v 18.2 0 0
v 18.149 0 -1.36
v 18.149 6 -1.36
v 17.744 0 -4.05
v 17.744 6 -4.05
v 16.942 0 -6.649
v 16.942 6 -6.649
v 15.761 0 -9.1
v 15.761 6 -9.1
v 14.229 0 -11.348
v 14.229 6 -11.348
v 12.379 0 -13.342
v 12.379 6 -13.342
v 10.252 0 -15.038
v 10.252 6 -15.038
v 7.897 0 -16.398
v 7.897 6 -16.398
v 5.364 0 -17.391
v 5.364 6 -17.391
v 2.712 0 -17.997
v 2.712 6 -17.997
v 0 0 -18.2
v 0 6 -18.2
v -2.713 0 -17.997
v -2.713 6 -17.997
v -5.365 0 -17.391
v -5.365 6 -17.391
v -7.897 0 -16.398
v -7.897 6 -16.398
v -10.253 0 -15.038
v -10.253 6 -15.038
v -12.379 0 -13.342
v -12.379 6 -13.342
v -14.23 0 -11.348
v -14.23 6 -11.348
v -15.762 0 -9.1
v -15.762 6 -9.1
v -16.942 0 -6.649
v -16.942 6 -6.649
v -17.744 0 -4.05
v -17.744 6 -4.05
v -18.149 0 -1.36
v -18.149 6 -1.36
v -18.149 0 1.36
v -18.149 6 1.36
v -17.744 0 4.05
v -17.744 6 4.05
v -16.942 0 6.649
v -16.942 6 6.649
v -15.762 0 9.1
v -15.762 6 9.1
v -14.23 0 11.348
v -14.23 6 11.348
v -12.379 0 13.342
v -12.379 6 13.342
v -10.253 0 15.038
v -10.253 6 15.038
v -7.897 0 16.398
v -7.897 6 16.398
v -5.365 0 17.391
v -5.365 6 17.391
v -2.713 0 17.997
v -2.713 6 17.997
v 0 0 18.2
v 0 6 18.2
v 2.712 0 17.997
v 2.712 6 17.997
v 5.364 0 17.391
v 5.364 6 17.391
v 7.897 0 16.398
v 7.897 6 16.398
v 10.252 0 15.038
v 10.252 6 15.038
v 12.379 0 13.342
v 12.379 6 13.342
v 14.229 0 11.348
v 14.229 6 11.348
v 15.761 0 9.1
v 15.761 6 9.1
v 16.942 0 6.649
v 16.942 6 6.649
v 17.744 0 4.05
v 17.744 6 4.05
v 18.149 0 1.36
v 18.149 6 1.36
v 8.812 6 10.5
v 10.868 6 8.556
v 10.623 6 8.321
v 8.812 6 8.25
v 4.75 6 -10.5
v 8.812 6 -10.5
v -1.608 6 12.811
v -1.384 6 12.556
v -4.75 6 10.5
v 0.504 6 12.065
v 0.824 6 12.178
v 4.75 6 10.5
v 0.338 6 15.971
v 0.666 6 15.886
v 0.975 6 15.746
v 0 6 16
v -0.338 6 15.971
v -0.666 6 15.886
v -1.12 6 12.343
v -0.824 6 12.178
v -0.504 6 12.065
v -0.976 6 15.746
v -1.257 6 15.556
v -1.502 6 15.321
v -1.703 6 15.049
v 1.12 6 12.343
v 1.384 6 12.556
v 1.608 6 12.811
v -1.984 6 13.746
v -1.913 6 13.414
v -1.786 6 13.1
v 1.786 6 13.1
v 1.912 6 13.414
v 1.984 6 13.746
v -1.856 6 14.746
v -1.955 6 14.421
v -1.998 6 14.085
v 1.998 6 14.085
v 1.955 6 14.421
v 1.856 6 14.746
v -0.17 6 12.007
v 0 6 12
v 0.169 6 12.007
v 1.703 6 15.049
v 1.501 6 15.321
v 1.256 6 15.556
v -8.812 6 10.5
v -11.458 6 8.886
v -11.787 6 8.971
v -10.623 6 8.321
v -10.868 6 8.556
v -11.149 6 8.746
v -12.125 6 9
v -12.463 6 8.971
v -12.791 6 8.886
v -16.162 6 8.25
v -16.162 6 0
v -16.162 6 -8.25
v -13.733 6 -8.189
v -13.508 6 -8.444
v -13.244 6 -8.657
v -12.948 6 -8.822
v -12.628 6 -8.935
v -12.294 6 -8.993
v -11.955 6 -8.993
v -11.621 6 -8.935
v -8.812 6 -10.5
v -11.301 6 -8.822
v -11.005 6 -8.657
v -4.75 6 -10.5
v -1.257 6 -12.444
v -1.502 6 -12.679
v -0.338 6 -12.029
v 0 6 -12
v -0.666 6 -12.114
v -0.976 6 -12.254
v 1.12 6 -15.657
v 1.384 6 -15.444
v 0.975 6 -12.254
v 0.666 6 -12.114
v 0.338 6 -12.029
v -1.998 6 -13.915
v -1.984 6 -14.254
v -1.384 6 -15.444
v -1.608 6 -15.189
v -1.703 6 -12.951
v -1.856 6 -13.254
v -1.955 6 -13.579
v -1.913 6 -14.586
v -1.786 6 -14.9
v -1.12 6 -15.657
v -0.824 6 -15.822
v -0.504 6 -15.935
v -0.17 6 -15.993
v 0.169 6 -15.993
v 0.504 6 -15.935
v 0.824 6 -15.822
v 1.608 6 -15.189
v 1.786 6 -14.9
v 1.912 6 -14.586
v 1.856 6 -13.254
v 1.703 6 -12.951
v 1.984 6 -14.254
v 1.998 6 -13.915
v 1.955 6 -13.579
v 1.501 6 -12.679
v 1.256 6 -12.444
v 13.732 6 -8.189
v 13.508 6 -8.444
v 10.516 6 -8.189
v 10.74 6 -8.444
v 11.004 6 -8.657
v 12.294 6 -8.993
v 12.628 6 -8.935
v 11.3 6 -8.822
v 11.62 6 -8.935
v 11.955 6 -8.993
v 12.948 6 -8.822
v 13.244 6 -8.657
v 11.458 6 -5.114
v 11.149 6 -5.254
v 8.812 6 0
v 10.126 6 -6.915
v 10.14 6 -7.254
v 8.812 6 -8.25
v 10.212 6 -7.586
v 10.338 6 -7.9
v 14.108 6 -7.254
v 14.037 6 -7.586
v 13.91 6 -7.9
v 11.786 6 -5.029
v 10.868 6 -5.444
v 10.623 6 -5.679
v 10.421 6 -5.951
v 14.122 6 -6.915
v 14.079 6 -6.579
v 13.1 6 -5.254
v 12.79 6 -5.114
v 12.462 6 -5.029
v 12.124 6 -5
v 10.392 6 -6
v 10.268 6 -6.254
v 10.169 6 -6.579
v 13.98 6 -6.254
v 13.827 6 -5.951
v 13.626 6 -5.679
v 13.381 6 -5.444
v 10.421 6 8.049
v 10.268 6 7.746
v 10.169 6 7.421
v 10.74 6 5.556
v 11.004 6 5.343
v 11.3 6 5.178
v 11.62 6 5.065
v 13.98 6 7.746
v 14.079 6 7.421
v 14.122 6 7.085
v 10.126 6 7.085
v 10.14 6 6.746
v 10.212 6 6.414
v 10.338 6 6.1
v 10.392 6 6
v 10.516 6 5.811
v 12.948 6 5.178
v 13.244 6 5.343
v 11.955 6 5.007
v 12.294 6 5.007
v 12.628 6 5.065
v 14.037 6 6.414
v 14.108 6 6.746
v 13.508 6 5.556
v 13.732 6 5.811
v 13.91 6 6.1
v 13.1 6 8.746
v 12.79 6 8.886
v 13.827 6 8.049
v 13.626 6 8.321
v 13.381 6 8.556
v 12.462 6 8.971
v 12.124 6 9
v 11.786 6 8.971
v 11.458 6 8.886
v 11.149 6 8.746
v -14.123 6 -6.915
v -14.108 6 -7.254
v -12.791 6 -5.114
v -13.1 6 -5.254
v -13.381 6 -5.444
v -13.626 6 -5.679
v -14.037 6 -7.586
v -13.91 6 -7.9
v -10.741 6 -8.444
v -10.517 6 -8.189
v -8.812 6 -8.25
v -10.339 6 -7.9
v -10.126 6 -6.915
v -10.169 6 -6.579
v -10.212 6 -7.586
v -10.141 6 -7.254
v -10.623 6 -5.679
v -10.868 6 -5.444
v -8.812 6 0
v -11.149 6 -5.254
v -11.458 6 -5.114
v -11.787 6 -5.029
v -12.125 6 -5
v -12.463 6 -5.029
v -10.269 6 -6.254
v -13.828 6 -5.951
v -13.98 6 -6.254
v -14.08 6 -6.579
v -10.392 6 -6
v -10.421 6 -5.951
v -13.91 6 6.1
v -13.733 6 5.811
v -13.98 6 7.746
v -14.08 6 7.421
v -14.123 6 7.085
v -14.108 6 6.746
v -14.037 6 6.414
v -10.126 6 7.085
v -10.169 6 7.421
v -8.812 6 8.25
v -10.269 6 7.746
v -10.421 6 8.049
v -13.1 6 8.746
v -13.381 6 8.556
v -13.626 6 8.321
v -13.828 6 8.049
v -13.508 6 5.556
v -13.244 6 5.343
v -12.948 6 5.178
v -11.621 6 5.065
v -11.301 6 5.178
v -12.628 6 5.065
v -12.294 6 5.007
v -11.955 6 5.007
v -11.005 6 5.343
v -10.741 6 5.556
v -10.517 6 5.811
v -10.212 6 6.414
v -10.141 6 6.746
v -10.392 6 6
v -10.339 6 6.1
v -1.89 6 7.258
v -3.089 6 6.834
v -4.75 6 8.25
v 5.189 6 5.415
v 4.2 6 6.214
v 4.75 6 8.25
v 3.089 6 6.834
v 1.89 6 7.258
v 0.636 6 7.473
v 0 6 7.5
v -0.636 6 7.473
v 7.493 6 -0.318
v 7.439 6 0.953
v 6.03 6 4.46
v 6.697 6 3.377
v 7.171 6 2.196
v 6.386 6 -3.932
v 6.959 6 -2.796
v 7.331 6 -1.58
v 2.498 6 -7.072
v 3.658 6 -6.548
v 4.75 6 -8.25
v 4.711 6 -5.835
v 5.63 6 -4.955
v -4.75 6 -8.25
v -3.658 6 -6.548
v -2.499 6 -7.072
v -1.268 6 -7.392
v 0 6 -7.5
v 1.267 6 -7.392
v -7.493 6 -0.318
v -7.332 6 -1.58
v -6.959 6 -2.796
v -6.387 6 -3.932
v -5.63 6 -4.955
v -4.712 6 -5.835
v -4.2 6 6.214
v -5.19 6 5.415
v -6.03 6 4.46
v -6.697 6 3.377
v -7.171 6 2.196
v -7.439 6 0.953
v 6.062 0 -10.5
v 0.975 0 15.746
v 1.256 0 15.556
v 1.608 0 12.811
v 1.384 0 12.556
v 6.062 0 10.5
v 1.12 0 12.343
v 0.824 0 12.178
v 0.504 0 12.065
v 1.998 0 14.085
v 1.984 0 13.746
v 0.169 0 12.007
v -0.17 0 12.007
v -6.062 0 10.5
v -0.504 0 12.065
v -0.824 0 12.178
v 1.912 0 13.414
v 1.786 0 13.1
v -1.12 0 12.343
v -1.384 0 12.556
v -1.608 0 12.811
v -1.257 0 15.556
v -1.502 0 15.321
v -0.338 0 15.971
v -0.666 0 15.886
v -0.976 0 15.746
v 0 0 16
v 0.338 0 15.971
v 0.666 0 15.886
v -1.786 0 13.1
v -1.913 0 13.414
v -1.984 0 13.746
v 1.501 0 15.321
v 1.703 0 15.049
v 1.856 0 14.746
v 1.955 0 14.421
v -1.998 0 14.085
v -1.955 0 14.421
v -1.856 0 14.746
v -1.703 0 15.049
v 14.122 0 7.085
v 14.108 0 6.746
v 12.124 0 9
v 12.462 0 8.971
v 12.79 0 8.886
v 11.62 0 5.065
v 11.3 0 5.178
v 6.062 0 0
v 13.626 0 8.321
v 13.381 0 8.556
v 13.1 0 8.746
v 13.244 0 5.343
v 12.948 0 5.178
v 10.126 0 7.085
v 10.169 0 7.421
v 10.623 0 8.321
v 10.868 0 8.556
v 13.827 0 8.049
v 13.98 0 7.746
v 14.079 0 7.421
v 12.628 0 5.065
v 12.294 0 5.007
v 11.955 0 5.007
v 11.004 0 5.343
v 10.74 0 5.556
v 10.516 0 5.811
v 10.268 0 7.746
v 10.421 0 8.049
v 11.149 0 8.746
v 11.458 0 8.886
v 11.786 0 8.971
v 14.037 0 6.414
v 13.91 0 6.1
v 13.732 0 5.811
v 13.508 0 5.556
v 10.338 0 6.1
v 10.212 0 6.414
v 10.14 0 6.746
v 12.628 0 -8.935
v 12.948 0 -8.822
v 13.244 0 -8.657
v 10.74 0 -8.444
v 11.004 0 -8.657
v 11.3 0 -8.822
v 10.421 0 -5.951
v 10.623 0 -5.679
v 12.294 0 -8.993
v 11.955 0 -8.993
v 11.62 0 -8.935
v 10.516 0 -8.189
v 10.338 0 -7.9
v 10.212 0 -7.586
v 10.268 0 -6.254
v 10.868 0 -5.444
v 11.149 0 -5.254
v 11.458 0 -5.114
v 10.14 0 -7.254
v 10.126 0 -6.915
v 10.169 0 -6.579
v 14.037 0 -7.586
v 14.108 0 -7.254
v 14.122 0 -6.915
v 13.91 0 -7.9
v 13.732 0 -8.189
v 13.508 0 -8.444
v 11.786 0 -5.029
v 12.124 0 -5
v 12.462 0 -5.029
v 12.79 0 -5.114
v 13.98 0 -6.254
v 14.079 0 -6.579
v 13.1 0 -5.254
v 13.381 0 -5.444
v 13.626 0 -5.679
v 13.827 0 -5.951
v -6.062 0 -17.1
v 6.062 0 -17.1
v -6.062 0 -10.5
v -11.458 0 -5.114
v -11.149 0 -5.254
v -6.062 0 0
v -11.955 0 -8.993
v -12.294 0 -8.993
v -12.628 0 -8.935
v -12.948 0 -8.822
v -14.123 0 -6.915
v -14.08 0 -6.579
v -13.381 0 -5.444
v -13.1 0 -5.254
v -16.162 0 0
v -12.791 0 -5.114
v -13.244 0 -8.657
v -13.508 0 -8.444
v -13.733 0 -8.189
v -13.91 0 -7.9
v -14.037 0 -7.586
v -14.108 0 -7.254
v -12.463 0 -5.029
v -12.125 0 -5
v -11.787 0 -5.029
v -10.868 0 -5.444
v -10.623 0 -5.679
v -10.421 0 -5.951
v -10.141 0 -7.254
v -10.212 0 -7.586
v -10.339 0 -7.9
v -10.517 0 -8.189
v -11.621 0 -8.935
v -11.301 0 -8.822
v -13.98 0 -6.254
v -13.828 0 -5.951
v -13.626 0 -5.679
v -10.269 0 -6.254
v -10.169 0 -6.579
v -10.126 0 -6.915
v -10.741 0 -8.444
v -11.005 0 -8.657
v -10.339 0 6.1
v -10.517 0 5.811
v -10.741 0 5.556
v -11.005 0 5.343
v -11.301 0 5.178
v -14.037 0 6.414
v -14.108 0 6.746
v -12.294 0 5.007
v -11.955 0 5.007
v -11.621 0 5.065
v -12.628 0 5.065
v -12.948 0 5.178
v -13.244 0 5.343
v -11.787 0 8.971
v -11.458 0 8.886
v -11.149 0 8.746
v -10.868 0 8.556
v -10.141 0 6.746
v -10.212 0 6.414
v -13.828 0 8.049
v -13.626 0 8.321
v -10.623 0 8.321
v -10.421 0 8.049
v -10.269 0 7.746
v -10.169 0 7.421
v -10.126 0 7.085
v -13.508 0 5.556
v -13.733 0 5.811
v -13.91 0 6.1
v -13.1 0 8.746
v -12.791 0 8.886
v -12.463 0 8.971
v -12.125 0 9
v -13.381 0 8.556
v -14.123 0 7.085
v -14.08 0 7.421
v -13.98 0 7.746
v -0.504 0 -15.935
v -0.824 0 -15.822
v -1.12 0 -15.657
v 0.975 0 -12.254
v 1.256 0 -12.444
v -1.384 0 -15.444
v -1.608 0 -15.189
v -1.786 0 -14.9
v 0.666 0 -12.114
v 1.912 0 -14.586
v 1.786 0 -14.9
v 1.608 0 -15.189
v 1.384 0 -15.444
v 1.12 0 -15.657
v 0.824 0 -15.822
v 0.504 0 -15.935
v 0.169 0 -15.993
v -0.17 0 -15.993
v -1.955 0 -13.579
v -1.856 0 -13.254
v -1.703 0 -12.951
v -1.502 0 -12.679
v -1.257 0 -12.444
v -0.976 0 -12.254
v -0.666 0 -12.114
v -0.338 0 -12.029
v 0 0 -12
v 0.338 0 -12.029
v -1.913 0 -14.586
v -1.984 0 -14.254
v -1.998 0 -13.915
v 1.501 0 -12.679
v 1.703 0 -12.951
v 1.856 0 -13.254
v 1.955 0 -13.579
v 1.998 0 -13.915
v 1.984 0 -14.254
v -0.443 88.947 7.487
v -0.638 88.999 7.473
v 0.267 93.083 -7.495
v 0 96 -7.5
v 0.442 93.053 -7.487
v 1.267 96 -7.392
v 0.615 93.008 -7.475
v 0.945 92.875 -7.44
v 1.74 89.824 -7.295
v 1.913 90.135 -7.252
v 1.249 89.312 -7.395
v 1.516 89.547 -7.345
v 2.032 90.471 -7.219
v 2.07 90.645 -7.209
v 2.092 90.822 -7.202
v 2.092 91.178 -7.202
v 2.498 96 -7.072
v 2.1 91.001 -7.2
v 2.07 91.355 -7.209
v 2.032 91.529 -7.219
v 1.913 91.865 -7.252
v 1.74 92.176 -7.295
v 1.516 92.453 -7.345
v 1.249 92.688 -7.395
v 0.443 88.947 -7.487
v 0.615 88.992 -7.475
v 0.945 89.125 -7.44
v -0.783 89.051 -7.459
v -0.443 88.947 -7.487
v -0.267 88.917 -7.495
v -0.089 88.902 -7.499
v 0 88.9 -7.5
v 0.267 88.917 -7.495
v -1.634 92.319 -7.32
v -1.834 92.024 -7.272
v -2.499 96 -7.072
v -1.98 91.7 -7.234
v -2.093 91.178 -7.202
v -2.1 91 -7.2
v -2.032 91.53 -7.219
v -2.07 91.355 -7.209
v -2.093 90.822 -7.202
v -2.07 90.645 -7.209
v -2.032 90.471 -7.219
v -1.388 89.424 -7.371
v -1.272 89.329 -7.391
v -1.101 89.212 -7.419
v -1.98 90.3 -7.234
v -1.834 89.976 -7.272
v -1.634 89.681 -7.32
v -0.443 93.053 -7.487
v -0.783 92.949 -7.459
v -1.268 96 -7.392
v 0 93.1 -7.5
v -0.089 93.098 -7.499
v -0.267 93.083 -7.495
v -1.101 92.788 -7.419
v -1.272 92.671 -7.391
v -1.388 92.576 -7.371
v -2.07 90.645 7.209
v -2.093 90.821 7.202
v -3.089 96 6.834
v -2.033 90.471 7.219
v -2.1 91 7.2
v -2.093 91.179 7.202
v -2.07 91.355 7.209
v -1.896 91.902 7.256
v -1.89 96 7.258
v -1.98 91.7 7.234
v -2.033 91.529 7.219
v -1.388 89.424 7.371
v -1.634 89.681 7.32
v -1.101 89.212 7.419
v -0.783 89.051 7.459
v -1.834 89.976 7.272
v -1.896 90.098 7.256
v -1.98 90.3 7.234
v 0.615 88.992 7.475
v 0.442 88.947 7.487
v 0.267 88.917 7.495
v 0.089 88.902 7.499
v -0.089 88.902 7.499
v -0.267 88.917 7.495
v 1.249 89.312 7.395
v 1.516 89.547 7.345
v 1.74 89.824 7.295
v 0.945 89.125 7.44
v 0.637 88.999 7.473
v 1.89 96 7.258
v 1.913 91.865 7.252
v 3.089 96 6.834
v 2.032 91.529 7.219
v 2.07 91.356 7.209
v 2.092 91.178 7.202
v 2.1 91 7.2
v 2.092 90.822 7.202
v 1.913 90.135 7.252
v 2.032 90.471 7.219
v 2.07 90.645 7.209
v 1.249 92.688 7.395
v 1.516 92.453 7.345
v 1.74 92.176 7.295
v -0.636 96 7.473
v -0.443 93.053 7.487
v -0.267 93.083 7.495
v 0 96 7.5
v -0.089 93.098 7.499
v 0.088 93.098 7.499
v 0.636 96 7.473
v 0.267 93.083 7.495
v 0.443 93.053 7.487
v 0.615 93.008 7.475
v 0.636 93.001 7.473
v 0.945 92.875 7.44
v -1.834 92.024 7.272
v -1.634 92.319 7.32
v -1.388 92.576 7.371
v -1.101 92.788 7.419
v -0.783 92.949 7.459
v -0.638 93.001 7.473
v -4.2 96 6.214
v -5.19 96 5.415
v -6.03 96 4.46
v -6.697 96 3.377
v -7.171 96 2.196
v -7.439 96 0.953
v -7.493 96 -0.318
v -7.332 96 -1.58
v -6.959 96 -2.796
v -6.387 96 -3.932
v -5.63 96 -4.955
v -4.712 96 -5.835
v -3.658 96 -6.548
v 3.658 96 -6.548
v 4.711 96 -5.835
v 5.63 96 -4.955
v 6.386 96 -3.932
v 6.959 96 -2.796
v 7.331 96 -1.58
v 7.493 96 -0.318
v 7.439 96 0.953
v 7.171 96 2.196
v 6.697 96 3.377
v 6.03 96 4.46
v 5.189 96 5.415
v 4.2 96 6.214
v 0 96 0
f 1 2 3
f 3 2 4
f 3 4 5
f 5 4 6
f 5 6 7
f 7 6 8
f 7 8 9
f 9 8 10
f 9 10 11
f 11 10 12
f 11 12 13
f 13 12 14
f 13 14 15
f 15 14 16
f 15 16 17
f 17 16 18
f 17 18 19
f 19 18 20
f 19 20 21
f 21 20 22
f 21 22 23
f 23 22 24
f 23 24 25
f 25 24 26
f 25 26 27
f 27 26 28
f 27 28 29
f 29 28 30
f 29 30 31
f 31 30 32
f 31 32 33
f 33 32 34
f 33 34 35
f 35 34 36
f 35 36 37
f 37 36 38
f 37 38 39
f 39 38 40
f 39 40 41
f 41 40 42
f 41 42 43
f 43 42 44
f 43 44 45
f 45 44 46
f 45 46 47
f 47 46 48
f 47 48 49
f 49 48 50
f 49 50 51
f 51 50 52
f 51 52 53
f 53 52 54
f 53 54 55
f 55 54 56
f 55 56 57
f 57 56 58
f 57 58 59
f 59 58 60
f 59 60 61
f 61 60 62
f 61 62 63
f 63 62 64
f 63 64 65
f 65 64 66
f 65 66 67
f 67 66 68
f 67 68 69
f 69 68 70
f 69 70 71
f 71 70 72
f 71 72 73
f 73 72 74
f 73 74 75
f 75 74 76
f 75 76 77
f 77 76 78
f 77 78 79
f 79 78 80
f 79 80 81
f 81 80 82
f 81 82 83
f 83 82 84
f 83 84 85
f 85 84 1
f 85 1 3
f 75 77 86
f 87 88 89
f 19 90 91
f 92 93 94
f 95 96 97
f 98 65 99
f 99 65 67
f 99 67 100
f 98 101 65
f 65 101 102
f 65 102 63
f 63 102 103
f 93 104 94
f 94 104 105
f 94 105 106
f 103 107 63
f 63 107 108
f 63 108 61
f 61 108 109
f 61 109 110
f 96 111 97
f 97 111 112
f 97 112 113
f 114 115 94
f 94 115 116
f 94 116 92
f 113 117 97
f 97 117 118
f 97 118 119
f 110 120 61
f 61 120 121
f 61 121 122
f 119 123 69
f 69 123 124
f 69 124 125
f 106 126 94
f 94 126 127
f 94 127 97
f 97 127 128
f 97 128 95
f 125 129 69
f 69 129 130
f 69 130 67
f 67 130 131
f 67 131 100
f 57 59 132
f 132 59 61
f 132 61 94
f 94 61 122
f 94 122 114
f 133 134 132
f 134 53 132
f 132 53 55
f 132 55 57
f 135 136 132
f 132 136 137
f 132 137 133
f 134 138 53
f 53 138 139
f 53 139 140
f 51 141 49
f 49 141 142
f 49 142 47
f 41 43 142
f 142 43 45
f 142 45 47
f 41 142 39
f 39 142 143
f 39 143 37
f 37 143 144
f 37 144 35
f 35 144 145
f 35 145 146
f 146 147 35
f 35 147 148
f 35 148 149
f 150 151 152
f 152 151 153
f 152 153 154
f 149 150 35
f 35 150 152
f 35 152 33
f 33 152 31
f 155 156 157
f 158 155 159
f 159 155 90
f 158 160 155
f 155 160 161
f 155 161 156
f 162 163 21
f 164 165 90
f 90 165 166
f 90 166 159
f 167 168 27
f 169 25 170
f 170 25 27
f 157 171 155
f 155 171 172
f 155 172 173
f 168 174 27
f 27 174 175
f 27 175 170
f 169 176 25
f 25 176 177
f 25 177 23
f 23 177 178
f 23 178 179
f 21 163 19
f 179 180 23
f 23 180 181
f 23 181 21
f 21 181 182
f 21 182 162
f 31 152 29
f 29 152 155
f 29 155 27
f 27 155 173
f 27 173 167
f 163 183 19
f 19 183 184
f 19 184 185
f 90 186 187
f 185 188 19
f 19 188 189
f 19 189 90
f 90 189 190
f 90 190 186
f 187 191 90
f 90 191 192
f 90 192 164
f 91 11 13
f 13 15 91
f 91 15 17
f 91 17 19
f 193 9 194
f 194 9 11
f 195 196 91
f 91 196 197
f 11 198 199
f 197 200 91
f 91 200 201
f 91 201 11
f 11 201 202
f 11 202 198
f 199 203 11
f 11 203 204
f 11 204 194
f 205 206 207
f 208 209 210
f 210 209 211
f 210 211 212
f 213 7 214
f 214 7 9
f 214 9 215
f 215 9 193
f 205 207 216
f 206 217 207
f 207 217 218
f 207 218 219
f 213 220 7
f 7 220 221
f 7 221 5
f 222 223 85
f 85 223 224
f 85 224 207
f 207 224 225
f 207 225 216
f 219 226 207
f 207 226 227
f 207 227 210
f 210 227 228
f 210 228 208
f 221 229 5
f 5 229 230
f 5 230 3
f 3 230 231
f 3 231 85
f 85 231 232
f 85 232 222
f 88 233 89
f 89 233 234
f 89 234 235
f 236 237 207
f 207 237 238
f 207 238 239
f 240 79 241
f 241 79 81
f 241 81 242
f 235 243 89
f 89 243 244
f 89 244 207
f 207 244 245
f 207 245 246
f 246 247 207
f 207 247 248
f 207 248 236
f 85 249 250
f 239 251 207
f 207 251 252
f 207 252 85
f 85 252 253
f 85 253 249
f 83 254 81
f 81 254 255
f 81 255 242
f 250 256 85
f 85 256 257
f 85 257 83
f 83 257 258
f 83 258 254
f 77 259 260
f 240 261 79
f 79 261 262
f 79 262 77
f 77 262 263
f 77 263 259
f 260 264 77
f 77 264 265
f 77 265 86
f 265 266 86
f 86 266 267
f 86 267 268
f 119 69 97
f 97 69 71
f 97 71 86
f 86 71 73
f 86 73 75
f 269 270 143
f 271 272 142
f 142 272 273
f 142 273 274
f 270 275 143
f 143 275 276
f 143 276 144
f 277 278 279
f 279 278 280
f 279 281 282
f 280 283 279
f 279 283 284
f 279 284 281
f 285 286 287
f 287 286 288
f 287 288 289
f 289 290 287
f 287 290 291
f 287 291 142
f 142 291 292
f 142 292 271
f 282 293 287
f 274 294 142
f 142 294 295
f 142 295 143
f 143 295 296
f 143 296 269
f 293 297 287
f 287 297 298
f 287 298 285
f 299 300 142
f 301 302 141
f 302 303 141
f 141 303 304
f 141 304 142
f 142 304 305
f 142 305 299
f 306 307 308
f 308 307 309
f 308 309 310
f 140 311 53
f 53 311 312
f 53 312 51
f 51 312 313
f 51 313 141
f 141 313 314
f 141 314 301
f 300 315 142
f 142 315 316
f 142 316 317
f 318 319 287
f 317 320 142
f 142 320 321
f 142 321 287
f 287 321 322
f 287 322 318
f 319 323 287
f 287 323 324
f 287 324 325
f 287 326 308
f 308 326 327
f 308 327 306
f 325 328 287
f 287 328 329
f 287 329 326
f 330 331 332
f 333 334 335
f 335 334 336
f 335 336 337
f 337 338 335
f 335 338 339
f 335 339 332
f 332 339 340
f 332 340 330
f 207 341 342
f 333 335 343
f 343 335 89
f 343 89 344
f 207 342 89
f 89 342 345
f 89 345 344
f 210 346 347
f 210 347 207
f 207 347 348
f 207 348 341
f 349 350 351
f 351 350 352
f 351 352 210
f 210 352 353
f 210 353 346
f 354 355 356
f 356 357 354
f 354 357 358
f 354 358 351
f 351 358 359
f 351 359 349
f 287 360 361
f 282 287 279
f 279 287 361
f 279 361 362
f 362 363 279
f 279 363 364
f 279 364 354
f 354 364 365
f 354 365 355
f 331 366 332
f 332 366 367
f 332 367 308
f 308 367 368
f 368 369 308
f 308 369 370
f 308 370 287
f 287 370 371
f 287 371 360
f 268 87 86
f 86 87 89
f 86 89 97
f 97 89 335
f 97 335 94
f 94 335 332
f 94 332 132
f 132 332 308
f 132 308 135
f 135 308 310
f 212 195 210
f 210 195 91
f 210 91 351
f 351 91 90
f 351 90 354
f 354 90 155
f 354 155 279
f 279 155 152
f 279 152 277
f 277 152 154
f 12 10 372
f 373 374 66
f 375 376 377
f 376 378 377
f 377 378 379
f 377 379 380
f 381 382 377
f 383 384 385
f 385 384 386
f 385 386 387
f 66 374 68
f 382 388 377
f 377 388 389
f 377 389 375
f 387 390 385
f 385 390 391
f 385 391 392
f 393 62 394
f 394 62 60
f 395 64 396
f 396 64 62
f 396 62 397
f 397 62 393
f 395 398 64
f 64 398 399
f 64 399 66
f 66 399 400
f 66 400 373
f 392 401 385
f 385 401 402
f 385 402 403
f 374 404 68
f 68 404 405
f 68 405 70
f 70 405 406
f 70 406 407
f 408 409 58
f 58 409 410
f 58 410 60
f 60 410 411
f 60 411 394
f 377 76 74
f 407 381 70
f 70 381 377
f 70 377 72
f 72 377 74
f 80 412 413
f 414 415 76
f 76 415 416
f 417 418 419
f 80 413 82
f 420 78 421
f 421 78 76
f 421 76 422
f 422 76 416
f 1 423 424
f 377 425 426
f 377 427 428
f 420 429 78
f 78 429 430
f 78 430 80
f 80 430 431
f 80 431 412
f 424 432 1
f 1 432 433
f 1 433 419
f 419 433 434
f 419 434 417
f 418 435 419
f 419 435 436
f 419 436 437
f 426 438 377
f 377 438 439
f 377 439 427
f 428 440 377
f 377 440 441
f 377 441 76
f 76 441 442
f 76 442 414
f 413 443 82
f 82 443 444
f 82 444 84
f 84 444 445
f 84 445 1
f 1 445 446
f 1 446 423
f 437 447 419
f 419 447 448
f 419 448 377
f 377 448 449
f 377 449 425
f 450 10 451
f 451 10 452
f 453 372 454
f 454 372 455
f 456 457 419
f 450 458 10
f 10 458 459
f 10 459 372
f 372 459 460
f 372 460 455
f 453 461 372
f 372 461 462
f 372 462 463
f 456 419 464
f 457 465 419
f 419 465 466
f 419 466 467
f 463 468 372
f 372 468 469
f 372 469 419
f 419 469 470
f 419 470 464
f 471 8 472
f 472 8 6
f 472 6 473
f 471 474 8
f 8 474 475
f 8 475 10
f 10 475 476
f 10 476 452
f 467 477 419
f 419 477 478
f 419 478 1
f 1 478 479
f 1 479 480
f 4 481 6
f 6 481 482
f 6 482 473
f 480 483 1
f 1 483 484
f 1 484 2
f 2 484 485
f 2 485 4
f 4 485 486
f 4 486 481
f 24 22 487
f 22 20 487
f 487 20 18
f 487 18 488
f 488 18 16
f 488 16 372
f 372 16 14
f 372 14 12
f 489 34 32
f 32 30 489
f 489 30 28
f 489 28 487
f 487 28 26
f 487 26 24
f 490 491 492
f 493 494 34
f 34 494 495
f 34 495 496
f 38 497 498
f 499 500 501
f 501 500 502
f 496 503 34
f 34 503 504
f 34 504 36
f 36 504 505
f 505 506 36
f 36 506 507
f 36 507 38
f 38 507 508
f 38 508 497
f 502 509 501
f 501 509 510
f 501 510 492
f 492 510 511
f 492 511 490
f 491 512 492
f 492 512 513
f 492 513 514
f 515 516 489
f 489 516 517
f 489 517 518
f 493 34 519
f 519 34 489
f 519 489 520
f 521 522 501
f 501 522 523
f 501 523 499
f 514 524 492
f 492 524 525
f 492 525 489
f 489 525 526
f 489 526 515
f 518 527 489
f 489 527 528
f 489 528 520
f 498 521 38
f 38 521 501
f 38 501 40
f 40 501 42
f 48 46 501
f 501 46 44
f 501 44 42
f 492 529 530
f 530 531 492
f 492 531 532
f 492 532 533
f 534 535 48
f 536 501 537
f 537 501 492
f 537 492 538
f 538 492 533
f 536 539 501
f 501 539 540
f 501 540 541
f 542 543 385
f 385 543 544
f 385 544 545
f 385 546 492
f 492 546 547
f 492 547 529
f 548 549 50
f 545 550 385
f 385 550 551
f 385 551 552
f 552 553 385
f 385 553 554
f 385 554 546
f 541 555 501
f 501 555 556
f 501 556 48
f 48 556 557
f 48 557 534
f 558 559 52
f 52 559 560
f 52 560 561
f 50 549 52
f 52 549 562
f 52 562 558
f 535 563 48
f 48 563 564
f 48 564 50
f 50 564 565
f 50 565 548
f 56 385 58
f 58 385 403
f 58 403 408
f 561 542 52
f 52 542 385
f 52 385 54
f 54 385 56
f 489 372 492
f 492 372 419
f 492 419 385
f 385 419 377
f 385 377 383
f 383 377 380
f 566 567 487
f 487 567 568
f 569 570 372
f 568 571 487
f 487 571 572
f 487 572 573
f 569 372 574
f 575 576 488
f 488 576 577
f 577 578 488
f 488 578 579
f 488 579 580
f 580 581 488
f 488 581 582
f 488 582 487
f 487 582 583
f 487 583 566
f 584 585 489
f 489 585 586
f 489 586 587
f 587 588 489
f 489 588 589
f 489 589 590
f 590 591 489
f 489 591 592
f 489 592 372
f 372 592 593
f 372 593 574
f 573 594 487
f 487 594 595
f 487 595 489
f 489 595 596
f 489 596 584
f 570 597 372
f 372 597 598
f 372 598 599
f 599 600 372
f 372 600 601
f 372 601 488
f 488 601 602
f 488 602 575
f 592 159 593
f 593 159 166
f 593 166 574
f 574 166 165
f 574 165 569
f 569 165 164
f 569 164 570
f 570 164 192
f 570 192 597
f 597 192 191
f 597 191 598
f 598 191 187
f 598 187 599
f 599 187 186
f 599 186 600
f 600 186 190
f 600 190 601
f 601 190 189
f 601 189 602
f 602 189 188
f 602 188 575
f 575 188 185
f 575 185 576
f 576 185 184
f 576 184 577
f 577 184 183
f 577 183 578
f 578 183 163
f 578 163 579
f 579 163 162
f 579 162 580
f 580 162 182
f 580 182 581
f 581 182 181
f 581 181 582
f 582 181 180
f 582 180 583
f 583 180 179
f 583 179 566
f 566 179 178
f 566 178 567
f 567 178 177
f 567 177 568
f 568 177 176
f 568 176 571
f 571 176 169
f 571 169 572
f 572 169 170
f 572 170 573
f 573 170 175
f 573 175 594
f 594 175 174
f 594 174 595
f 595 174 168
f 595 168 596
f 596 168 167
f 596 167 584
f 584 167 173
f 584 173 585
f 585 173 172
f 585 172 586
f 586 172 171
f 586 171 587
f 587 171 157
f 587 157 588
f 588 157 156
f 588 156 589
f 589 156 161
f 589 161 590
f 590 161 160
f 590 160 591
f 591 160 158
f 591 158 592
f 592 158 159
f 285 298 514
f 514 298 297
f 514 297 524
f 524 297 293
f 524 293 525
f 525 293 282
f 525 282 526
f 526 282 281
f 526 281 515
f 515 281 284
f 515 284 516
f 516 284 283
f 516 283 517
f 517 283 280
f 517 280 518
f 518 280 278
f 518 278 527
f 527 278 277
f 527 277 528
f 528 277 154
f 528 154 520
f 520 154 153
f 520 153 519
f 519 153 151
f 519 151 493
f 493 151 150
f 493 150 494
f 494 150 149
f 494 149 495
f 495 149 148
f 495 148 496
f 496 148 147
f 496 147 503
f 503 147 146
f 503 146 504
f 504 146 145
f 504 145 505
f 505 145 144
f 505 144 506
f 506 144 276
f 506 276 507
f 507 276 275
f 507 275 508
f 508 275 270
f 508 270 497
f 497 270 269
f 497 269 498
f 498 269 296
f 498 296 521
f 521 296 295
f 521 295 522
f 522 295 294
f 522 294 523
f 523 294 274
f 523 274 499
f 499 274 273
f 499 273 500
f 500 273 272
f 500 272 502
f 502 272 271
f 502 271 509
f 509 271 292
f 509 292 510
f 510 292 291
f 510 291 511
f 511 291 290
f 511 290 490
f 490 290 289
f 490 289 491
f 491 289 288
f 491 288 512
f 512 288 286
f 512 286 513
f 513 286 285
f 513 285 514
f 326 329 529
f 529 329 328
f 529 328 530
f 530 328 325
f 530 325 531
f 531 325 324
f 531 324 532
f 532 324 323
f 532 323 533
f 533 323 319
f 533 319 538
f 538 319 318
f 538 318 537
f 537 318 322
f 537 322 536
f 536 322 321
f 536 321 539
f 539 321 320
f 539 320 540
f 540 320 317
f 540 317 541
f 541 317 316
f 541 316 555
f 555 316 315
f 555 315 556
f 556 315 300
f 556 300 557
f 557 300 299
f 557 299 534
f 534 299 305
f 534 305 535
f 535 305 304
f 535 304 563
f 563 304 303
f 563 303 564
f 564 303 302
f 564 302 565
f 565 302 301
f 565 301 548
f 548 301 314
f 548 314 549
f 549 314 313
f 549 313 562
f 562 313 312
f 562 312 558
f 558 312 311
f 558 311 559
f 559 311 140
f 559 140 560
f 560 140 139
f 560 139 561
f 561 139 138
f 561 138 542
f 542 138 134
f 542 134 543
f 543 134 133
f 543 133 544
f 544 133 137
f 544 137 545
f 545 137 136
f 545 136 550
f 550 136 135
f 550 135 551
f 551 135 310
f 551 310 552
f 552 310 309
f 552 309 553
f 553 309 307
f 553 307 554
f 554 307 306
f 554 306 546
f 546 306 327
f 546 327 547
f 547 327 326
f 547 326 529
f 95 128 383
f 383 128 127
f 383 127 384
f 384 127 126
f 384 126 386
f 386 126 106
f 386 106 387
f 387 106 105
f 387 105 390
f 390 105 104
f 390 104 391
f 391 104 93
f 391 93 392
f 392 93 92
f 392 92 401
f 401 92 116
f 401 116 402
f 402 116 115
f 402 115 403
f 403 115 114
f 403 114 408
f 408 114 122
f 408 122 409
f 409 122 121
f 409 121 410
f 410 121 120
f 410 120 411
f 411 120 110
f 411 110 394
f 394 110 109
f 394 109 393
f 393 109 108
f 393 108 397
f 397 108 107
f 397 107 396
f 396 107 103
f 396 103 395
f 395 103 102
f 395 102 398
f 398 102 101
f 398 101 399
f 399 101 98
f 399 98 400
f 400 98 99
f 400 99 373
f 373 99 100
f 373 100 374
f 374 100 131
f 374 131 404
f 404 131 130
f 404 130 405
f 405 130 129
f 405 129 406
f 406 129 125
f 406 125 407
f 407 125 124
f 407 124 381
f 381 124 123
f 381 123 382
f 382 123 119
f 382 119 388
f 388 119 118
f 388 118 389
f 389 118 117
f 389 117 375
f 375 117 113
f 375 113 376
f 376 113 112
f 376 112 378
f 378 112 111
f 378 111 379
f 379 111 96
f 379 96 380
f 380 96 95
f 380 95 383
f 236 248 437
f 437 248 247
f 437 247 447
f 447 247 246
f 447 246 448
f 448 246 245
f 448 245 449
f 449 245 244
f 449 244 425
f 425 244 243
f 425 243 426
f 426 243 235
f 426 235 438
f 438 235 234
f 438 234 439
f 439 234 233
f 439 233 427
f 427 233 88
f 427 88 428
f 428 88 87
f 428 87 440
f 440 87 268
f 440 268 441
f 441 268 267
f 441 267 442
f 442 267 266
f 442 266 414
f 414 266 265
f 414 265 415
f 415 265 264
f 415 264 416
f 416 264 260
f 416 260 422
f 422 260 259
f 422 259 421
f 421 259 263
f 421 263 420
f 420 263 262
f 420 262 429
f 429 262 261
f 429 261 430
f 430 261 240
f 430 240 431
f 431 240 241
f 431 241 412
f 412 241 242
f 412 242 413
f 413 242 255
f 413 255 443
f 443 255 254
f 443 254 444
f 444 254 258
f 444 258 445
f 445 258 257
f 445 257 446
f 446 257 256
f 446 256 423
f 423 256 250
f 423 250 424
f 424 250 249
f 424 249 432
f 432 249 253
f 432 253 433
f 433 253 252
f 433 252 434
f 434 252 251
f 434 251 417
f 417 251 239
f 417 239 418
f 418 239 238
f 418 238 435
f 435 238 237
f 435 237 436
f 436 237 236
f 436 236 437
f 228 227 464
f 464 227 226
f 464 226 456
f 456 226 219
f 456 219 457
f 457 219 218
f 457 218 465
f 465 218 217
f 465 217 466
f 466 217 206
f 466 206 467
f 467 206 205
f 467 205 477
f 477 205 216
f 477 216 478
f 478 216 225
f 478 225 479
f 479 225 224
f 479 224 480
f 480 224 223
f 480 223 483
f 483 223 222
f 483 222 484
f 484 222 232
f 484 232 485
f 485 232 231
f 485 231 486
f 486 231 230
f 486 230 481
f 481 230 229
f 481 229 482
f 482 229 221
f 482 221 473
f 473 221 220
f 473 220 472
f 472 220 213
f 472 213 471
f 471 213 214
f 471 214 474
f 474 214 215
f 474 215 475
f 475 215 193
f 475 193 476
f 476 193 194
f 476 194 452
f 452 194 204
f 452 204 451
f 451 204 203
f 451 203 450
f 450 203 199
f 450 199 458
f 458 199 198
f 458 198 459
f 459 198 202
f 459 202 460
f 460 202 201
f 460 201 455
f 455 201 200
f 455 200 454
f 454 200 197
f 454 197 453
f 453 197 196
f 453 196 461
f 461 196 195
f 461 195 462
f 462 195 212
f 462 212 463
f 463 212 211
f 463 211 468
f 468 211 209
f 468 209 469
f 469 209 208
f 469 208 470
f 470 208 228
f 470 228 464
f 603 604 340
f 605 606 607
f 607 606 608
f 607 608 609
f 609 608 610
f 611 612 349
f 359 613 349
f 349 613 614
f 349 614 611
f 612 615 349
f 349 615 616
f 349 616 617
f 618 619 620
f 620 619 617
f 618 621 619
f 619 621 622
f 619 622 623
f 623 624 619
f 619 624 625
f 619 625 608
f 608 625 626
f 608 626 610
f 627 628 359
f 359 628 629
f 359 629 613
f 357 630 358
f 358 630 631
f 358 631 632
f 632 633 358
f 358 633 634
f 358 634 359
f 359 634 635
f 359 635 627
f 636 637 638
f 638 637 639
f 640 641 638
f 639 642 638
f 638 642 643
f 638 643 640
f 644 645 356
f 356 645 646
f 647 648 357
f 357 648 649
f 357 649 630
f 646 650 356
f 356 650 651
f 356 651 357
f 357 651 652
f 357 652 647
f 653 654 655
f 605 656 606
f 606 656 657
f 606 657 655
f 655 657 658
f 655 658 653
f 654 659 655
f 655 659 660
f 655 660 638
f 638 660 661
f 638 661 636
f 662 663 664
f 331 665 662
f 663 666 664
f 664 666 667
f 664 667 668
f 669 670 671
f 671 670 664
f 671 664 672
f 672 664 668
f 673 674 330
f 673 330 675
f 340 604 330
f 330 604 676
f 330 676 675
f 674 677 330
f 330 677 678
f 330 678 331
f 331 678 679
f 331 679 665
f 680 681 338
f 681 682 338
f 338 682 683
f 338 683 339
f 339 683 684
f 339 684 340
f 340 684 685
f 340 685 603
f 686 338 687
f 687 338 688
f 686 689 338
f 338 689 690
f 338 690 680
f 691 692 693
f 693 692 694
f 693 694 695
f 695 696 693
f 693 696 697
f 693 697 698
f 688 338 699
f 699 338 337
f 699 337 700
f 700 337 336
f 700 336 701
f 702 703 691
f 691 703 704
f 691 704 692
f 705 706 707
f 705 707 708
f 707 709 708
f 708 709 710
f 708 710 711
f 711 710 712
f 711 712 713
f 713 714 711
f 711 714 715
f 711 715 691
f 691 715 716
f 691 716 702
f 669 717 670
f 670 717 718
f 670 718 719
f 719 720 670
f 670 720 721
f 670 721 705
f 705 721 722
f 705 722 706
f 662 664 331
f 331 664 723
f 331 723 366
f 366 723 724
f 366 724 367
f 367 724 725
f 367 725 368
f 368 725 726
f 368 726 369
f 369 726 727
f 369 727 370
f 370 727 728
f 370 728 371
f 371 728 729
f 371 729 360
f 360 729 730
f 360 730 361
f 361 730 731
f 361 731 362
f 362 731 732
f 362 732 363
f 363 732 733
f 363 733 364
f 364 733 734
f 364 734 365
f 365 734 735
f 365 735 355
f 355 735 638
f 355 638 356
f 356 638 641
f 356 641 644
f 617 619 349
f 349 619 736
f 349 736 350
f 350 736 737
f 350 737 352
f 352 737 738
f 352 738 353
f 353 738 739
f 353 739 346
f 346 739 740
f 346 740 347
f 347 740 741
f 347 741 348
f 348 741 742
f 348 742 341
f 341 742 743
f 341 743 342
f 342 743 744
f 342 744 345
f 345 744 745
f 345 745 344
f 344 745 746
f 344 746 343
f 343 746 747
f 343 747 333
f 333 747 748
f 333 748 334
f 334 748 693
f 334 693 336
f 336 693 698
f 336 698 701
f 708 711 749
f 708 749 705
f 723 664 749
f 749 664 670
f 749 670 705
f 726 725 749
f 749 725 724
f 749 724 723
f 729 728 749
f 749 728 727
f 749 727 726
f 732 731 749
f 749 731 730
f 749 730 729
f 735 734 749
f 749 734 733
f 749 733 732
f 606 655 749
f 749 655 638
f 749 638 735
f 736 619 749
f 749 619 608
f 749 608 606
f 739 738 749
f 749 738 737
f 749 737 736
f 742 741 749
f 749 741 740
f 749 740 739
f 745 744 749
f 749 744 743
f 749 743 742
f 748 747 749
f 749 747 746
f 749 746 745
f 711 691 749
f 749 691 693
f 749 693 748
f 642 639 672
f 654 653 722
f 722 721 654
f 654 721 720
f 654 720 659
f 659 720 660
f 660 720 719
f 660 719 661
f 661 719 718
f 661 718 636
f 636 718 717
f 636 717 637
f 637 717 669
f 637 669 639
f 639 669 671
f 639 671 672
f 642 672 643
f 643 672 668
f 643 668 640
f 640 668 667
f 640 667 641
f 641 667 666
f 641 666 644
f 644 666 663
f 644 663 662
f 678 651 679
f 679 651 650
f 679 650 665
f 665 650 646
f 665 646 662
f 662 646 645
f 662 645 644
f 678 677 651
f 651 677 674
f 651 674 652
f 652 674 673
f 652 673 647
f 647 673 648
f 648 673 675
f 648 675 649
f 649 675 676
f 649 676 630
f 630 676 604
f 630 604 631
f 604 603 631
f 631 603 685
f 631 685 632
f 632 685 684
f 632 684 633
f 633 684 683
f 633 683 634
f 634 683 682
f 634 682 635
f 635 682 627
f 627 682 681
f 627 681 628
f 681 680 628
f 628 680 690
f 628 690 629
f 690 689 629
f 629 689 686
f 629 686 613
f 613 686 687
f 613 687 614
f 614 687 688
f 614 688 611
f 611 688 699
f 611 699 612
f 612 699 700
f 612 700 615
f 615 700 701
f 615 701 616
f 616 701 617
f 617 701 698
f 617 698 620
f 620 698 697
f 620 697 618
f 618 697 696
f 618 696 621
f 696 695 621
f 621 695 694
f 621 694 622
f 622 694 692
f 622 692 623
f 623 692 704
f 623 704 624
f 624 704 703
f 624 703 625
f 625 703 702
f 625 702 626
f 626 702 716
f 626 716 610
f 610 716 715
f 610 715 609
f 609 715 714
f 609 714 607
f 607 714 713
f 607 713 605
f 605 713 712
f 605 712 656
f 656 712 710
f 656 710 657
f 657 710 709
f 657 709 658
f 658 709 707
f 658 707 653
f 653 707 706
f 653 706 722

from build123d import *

# Parameters (mm, degrees)
SKETCH1_R           = 18.2
BOSS_EXTRUDE1_DEPTH = 6
SKETCH3_R           = 2
CUT_EXTRUDE1_DEPTH  = 10
CIRPATTERN1_COUNT   = 6
SKETCH4_R           = 7.5
BOSS_EXTRUDE2_DEPTH = 90
SKETCH9_R           = 2.1
CUT_EXTRUDE2_DEPTH  = 26.7


with BuildPart() as part:
    # Sketch1 → Boss-Extrude1 (new body)
    with BuildSketch(Plane(origin=(0, 0, 0), x_dir=(1, 0, 0), z_dir=(0, 1, 0))):
        Circle(SKETCH1_R)
    extrude(amount=BOSS_EXTRUDE1_DEPTH)

    # Sketch3 → Cut-Extrude1 (cut)
    with BuildSketch(Plane(origin=(0, 6, 0), x_dir=(1, 0, 0), z_dir=(0, 1, 0))):
        with Locations((0, 14)):
            Circle(SKETCH3_R)
    cut_extrude1 = extrude(amount=-CUT_EXTRUDE1_DEPTH, mode=Mode.SUBTRACT)

    # CirPattern1: Cut-Extrude1 ×6 about axis
    cirpattern1_axis = Axis((0, 0, 0), (0, 1, 0))
    for i in range(1, CIRPATTERN1_COUNT):
        add(cut_extrude1.rotate(cirpattern1_axis, i * 360 / CIRPATTERN1_COUNT), mode=Mode.SUBTRACT)

    # Sketch4 → Boss-Extrude2 (add)
    with BuildSketch(Plane(origin=(0, 6, 0), x_dir=(1, 0, 0), z_dir=(0, 1, 0))):
        Circle(SKETCH4_R)
    extrude(amount=BOSS_EXTRUDE2_DEPTH)

    # Sketch9 → Cut-Extrude2 (cut, through all)
    with BuildSketch(Plane(origin=(0, 0, -7.5), x_dir=(-1, 0, 0), z_dir=(0, 0, -1))):
        with Locations((0, 91)):
            Circle(SKETCH9_R)
    extrude(amount=-CUT_EXTRUDE2_DEPTH, mode=Mode.SUBTRACT)


solid = part.part
